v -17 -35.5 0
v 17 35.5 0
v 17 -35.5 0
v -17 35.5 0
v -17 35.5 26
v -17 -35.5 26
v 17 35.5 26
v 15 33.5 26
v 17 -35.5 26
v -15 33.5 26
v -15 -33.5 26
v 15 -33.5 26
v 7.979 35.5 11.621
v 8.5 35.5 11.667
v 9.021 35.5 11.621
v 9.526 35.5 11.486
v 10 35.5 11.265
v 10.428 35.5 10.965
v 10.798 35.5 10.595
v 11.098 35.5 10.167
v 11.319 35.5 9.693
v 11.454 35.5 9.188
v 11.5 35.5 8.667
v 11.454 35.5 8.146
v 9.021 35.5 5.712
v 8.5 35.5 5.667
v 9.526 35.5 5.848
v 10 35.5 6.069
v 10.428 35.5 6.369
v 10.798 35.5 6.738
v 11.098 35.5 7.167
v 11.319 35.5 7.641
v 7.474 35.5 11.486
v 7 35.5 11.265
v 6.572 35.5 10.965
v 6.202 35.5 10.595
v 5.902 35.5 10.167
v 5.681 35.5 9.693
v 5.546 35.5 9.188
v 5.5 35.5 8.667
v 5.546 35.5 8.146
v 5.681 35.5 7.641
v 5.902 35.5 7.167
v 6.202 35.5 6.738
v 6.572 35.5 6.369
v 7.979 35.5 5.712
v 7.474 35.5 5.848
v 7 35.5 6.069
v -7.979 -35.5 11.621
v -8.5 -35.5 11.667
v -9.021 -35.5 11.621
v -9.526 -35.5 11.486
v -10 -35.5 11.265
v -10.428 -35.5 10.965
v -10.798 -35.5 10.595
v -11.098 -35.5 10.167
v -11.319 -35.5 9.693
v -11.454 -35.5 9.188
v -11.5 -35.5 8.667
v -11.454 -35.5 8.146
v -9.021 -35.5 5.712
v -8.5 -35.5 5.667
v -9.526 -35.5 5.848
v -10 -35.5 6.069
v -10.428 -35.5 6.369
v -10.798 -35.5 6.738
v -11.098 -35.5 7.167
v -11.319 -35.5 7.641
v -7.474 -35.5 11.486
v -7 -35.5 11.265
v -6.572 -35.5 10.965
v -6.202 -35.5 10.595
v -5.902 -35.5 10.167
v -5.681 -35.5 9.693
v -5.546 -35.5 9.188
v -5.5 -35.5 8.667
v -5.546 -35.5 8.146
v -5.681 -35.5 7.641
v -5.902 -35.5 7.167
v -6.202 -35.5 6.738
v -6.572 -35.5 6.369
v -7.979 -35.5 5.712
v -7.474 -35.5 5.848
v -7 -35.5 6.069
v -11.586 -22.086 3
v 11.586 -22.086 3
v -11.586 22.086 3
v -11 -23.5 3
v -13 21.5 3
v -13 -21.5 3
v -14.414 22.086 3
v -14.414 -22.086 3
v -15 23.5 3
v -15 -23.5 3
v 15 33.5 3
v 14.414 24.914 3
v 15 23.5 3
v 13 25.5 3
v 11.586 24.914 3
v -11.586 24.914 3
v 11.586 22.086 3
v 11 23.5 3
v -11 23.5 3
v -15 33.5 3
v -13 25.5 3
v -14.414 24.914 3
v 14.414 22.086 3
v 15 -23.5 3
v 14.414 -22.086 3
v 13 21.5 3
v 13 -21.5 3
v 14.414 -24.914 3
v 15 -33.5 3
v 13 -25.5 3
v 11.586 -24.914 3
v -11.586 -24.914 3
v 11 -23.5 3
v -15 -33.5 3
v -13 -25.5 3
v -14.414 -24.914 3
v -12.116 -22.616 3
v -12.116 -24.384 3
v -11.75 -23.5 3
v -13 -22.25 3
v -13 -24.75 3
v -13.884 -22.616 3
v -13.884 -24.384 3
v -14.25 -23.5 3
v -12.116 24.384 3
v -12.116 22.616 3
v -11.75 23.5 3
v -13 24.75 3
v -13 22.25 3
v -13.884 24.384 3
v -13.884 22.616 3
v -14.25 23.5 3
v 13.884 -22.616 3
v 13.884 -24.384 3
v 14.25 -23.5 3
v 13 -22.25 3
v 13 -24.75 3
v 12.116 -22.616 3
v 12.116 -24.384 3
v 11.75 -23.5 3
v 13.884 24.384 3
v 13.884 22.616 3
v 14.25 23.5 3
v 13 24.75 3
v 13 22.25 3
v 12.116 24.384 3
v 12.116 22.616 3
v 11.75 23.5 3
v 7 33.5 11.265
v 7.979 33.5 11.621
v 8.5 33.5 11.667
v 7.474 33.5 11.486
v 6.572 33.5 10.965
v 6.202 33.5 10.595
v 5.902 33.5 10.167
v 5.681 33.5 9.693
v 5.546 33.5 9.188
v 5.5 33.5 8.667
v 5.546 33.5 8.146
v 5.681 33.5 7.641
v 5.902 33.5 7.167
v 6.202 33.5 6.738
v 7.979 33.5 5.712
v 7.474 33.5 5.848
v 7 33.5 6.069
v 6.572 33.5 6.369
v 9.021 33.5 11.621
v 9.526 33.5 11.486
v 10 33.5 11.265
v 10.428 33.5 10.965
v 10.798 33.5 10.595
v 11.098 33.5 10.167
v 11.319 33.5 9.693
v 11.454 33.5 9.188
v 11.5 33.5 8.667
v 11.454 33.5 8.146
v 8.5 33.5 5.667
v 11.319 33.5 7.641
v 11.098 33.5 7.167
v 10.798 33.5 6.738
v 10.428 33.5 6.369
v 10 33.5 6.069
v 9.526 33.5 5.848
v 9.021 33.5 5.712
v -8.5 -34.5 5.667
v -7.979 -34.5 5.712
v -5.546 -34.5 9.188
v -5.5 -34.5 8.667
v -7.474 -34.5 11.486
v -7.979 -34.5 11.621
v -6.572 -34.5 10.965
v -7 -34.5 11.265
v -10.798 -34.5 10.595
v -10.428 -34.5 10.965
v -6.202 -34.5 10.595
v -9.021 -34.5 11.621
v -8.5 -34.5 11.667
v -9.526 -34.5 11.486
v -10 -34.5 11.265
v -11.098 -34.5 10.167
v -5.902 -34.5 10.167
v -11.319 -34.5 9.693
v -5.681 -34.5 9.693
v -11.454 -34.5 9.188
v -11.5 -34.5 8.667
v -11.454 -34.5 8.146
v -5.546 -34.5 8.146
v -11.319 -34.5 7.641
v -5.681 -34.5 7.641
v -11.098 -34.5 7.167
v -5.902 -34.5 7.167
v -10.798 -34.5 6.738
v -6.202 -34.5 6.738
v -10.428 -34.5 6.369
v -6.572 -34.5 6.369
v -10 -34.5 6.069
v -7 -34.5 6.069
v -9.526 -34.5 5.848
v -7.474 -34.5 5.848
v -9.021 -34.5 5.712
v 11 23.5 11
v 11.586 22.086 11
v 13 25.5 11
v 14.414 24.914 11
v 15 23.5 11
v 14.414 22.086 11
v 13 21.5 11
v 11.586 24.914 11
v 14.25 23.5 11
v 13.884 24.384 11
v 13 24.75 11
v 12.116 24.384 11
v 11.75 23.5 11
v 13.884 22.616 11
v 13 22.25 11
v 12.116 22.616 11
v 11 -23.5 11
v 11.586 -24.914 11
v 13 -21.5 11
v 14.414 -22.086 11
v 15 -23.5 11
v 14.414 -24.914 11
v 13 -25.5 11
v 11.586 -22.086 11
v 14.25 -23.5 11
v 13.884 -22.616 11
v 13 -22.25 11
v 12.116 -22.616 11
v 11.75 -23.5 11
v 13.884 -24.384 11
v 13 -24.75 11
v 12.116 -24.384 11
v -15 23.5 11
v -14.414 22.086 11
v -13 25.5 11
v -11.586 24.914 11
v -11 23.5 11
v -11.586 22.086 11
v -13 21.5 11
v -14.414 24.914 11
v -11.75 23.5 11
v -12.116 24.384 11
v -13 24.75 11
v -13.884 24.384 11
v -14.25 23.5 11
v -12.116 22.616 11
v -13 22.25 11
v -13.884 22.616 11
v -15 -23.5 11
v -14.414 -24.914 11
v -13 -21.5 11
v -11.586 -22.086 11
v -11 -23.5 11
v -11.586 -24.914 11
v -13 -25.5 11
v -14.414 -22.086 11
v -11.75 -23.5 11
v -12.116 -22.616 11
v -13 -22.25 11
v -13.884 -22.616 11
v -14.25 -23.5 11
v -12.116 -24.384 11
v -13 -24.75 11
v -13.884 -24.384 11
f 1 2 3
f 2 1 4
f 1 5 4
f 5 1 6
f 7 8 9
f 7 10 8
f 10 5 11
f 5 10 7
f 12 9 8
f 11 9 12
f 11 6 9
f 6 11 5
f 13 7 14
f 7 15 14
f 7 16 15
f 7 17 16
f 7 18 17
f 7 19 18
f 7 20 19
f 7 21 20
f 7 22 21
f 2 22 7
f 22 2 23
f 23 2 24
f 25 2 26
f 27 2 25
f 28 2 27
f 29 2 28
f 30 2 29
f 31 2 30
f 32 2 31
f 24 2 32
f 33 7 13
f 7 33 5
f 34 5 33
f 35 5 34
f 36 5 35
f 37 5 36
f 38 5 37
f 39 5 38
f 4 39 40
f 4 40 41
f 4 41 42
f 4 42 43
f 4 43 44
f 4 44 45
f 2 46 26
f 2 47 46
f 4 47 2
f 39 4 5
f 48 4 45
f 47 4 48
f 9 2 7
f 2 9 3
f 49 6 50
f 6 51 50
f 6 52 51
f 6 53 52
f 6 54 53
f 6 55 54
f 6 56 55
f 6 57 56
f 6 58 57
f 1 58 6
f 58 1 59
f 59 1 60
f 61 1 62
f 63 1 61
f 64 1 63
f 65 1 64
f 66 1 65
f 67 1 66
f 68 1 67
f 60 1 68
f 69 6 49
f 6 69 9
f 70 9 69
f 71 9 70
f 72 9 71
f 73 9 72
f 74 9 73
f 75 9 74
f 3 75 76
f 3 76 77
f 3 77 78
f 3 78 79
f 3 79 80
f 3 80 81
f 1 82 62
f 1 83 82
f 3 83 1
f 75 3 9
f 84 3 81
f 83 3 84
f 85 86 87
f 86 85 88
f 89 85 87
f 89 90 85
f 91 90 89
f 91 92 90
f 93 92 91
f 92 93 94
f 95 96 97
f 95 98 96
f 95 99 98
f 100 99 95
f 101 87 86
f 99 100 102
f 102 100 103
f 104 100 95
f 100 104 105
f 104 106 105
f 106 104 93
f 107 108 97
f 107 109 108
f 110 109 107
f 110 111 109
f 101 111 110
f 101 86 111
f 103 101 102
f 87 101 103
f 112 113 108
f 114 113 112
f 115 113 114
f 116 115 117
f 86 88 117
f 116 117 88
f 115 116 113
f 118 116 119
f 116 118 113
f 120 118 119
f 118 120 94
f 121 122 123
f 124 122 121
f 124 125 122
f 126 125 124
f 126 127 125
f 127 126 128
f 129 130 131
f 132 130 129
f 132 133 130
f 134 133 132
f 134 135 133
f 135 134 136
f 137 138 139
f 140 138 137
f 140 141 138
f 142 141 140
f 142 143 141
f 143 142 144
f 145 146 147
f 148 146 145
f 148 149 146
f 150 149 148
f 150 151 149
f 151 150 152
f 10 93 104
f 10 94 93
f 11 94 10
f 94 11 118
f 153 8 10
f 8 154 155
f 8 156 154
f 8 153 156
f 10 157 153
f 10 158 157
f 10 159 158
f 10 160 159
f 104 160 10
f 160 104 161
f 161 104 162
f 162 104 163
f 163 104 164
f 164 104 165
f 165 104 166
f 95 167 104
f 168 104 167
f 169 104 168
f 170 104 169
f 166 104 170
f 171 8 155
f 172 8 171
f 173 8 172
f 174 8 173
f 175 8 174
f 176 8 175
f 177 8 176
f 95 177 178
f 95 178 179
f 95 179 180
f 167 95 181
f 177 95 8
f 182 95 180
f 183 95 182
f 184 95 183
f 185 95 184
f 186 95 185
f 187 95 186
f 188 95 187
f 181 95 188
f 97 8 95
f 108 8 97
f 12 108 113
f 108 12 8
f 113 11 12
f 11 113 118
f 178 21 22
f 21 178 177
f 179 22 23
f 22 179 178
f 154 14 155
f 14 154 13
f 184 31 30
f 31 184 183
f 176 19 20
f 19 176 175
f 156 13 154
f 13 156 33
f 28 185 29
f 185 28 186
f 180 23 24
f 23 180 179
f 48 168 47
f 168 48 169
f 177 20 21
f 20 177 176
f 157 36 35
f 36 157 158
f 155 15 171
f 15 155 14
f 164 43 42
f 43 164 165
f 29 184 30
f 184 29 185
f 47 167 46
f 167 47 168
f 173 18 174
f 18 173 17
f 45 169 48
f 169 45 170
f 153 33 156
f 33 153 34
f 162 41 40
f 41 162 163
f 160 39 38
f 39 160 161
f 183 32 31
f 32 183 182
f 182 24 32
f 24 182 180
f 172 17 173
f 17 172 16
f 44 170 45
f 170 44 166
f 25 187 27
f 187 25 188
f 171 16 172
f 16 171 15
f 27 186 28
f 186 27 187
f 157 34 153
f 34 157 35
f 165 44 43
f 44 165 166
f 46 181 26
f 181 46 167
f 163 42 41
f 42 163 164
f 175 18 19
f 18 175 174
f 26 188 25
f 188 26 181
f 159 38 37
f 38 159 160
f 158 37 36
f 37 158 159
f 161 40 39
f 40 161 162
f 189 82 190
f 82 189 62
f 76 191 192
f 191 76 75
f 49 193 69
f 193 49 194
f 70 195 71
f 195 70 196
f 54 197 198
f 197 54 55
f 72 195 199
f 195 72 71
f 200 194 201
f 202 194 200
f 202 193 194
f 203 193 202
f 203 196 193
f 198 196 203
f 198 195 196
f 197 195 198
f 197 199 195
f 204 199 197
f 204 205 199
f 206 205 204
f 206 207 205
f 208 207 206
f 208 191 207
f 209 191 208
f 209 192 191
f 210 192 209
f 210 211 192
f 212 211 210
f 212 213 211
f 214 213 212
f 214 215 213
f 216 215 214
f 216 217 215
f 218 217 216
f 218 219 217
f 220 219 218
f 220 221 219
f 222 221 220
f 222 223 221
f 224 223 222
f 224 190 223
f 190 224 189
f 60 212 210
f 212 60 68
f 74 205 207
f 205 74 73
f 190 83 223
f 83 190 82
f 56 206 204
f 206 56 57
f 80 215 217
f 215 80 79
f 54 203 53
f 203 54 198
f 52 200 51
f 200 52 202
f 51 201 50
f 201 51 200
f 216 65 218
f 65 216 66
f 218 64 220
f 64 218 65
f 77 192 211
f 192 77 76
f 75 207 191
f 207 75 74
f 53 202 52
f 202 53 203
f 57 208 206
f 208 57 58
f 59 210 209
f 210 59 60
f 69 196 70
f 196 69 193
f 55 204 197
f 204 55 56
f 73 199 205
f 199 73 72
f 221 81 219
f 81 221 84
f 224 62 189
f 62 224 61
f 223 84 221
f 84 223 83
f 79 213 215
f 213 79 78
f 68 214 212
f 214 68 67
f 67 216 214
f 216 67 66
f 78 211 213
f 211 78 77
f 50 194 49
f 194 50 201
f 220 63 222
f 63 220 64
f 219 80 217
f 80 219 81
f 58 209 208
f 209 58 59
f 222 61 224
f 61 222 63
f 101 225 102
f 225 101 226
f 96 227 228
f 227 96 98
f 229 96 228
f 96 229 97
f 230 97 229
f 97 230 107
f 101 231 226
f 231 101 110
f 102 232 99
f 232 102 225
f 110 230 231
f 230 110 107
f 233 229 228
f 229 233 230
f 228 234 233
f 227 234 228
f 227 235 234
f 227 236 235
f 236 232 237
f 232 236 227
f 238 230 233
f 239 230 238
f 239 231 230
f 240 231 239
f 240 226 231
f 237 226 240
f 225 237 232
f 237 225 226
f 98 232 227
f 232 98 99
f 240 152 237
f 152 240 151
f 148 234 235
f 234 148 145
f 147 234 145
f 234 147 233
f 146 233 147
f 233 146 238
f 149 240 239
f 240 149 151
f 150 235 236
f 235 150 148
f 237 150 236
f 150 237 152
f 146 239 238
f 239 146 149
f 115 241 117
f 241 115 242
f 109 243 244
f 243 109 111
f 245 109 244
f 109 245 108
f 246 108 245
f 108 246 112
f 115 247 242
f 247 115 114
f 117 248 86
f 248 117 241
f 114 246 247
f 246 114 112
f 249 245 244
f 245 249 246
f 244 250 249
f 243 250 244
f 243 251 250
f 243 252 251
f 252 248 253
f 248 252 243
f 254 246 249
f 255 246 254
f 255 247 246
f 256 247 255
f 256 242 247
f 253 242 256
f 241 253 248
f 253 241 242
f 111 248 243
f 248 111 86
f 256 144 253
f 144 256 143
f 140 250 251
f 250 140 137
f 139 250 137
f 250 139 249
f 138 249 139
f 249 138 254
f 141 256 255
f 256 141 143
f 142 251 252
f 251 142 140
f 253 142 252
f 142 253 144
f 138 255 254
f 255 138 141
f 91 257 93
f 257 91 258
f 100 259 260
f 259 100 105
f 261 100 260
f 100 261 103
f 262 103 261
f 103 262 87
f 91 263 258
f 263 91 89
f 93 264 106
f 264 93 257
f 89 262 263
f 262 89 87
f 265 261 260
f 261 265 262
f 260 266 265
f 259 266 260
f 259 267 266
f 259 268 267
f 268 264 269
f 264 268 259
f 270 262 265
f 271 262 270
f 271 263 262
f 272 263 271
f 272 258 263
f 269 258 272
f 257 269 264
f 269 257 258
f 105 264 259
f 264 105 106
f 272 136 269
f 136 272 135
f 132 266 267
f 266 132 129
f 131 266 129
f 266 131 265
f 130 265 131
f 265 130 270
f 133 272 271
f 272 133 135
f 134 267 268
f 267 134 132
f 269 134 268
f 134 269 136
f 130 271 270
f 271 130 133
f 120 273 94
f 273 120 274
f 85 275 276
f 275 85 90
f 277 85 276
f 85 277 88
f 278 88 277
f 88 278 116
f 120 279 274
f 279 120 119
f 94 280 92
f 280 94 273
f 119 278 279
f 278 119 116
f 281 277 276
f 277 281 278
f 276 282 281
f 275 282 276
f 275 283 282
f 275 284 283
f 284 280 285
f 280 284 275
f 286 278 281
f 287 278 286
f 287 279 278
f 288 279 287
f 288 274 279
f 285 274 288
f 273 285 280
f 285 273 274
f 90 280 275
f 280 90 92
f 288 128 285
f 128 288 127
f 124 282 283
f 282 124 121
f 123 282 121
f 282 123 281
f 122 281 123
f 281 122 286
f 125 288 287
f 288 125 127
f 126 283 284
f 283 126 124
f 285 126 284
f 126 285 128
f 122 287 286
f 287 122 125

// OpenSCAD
// file: vars-charger.scad
echo(version=version());
//All dimensions are in mm

l = 71; // lenght of box in x dir
w = 34;  // width of box in y dir
h=26;    // height of box without lid
wall=2;  // wall thickness
postloc=23.5; // where the edge posts are in y direction
postradius=2 ;  //Dimension of posts in x and y
postholeradius=1.25;
postheight=8;
basethickness=3;
holdslotloc=81.5;
holdslotwidth=10;
wireholddiameter = 6;
switchcutout = [28,22];
//Perforation size: 23mm*10.5mm
voltmetercutout=[24,11.5];
// Allow for slip by making the ridge a little smaller than the box it fits into.
interference=0.8;
// main file
include <vars-charger.scad>;
// simple 2D -> 3D extrusion of a rectangle
color("red")
   difference() {
        linear_extrude(height = h)
            square([w, l
            ], center = true);
       translate ([0,0,basethickness])
         linear_extrude(height = h)
            square([w-2*wall, l-2*wall
            ], center = true)   ;
    translate([w/4,l/2+1,h/3])
    rotate([90,0,0])
    cylinder(h = wall*5,
            r1 = wireholddiameter/2,
            r2 = wireholddiameter/2,
            $fn = 36,
            center = false);  
    translate([-w/4,-l/2+1,h/3])
    rotate([90,0,0])
    cylinder(h = wall*5,
            r1 = wireholddiameter/2,
            r2 = wireholddiameter/2,
            $fn = 36,
            center = false);  
      }


mountpost(13,postloc);
mountpost(13,-postloc);
mountpost(-13,postloc);
mountpost(-13,-postloc);

 


module mountpost(x=0,y=0, postcolor="blue") {
    color(postcolor)
    translate ([x,y,basethickness])
   difference() {

    cylinder(h=postheight, r1=postradius, r2=postradius,  $fn = 8,
center = false);

    translate ([0,0,-1])
    cylinder(h=postheight+4, r1=postholeradius, r2=postholeradius,  $fn = 8,
center = false);
   }

}
